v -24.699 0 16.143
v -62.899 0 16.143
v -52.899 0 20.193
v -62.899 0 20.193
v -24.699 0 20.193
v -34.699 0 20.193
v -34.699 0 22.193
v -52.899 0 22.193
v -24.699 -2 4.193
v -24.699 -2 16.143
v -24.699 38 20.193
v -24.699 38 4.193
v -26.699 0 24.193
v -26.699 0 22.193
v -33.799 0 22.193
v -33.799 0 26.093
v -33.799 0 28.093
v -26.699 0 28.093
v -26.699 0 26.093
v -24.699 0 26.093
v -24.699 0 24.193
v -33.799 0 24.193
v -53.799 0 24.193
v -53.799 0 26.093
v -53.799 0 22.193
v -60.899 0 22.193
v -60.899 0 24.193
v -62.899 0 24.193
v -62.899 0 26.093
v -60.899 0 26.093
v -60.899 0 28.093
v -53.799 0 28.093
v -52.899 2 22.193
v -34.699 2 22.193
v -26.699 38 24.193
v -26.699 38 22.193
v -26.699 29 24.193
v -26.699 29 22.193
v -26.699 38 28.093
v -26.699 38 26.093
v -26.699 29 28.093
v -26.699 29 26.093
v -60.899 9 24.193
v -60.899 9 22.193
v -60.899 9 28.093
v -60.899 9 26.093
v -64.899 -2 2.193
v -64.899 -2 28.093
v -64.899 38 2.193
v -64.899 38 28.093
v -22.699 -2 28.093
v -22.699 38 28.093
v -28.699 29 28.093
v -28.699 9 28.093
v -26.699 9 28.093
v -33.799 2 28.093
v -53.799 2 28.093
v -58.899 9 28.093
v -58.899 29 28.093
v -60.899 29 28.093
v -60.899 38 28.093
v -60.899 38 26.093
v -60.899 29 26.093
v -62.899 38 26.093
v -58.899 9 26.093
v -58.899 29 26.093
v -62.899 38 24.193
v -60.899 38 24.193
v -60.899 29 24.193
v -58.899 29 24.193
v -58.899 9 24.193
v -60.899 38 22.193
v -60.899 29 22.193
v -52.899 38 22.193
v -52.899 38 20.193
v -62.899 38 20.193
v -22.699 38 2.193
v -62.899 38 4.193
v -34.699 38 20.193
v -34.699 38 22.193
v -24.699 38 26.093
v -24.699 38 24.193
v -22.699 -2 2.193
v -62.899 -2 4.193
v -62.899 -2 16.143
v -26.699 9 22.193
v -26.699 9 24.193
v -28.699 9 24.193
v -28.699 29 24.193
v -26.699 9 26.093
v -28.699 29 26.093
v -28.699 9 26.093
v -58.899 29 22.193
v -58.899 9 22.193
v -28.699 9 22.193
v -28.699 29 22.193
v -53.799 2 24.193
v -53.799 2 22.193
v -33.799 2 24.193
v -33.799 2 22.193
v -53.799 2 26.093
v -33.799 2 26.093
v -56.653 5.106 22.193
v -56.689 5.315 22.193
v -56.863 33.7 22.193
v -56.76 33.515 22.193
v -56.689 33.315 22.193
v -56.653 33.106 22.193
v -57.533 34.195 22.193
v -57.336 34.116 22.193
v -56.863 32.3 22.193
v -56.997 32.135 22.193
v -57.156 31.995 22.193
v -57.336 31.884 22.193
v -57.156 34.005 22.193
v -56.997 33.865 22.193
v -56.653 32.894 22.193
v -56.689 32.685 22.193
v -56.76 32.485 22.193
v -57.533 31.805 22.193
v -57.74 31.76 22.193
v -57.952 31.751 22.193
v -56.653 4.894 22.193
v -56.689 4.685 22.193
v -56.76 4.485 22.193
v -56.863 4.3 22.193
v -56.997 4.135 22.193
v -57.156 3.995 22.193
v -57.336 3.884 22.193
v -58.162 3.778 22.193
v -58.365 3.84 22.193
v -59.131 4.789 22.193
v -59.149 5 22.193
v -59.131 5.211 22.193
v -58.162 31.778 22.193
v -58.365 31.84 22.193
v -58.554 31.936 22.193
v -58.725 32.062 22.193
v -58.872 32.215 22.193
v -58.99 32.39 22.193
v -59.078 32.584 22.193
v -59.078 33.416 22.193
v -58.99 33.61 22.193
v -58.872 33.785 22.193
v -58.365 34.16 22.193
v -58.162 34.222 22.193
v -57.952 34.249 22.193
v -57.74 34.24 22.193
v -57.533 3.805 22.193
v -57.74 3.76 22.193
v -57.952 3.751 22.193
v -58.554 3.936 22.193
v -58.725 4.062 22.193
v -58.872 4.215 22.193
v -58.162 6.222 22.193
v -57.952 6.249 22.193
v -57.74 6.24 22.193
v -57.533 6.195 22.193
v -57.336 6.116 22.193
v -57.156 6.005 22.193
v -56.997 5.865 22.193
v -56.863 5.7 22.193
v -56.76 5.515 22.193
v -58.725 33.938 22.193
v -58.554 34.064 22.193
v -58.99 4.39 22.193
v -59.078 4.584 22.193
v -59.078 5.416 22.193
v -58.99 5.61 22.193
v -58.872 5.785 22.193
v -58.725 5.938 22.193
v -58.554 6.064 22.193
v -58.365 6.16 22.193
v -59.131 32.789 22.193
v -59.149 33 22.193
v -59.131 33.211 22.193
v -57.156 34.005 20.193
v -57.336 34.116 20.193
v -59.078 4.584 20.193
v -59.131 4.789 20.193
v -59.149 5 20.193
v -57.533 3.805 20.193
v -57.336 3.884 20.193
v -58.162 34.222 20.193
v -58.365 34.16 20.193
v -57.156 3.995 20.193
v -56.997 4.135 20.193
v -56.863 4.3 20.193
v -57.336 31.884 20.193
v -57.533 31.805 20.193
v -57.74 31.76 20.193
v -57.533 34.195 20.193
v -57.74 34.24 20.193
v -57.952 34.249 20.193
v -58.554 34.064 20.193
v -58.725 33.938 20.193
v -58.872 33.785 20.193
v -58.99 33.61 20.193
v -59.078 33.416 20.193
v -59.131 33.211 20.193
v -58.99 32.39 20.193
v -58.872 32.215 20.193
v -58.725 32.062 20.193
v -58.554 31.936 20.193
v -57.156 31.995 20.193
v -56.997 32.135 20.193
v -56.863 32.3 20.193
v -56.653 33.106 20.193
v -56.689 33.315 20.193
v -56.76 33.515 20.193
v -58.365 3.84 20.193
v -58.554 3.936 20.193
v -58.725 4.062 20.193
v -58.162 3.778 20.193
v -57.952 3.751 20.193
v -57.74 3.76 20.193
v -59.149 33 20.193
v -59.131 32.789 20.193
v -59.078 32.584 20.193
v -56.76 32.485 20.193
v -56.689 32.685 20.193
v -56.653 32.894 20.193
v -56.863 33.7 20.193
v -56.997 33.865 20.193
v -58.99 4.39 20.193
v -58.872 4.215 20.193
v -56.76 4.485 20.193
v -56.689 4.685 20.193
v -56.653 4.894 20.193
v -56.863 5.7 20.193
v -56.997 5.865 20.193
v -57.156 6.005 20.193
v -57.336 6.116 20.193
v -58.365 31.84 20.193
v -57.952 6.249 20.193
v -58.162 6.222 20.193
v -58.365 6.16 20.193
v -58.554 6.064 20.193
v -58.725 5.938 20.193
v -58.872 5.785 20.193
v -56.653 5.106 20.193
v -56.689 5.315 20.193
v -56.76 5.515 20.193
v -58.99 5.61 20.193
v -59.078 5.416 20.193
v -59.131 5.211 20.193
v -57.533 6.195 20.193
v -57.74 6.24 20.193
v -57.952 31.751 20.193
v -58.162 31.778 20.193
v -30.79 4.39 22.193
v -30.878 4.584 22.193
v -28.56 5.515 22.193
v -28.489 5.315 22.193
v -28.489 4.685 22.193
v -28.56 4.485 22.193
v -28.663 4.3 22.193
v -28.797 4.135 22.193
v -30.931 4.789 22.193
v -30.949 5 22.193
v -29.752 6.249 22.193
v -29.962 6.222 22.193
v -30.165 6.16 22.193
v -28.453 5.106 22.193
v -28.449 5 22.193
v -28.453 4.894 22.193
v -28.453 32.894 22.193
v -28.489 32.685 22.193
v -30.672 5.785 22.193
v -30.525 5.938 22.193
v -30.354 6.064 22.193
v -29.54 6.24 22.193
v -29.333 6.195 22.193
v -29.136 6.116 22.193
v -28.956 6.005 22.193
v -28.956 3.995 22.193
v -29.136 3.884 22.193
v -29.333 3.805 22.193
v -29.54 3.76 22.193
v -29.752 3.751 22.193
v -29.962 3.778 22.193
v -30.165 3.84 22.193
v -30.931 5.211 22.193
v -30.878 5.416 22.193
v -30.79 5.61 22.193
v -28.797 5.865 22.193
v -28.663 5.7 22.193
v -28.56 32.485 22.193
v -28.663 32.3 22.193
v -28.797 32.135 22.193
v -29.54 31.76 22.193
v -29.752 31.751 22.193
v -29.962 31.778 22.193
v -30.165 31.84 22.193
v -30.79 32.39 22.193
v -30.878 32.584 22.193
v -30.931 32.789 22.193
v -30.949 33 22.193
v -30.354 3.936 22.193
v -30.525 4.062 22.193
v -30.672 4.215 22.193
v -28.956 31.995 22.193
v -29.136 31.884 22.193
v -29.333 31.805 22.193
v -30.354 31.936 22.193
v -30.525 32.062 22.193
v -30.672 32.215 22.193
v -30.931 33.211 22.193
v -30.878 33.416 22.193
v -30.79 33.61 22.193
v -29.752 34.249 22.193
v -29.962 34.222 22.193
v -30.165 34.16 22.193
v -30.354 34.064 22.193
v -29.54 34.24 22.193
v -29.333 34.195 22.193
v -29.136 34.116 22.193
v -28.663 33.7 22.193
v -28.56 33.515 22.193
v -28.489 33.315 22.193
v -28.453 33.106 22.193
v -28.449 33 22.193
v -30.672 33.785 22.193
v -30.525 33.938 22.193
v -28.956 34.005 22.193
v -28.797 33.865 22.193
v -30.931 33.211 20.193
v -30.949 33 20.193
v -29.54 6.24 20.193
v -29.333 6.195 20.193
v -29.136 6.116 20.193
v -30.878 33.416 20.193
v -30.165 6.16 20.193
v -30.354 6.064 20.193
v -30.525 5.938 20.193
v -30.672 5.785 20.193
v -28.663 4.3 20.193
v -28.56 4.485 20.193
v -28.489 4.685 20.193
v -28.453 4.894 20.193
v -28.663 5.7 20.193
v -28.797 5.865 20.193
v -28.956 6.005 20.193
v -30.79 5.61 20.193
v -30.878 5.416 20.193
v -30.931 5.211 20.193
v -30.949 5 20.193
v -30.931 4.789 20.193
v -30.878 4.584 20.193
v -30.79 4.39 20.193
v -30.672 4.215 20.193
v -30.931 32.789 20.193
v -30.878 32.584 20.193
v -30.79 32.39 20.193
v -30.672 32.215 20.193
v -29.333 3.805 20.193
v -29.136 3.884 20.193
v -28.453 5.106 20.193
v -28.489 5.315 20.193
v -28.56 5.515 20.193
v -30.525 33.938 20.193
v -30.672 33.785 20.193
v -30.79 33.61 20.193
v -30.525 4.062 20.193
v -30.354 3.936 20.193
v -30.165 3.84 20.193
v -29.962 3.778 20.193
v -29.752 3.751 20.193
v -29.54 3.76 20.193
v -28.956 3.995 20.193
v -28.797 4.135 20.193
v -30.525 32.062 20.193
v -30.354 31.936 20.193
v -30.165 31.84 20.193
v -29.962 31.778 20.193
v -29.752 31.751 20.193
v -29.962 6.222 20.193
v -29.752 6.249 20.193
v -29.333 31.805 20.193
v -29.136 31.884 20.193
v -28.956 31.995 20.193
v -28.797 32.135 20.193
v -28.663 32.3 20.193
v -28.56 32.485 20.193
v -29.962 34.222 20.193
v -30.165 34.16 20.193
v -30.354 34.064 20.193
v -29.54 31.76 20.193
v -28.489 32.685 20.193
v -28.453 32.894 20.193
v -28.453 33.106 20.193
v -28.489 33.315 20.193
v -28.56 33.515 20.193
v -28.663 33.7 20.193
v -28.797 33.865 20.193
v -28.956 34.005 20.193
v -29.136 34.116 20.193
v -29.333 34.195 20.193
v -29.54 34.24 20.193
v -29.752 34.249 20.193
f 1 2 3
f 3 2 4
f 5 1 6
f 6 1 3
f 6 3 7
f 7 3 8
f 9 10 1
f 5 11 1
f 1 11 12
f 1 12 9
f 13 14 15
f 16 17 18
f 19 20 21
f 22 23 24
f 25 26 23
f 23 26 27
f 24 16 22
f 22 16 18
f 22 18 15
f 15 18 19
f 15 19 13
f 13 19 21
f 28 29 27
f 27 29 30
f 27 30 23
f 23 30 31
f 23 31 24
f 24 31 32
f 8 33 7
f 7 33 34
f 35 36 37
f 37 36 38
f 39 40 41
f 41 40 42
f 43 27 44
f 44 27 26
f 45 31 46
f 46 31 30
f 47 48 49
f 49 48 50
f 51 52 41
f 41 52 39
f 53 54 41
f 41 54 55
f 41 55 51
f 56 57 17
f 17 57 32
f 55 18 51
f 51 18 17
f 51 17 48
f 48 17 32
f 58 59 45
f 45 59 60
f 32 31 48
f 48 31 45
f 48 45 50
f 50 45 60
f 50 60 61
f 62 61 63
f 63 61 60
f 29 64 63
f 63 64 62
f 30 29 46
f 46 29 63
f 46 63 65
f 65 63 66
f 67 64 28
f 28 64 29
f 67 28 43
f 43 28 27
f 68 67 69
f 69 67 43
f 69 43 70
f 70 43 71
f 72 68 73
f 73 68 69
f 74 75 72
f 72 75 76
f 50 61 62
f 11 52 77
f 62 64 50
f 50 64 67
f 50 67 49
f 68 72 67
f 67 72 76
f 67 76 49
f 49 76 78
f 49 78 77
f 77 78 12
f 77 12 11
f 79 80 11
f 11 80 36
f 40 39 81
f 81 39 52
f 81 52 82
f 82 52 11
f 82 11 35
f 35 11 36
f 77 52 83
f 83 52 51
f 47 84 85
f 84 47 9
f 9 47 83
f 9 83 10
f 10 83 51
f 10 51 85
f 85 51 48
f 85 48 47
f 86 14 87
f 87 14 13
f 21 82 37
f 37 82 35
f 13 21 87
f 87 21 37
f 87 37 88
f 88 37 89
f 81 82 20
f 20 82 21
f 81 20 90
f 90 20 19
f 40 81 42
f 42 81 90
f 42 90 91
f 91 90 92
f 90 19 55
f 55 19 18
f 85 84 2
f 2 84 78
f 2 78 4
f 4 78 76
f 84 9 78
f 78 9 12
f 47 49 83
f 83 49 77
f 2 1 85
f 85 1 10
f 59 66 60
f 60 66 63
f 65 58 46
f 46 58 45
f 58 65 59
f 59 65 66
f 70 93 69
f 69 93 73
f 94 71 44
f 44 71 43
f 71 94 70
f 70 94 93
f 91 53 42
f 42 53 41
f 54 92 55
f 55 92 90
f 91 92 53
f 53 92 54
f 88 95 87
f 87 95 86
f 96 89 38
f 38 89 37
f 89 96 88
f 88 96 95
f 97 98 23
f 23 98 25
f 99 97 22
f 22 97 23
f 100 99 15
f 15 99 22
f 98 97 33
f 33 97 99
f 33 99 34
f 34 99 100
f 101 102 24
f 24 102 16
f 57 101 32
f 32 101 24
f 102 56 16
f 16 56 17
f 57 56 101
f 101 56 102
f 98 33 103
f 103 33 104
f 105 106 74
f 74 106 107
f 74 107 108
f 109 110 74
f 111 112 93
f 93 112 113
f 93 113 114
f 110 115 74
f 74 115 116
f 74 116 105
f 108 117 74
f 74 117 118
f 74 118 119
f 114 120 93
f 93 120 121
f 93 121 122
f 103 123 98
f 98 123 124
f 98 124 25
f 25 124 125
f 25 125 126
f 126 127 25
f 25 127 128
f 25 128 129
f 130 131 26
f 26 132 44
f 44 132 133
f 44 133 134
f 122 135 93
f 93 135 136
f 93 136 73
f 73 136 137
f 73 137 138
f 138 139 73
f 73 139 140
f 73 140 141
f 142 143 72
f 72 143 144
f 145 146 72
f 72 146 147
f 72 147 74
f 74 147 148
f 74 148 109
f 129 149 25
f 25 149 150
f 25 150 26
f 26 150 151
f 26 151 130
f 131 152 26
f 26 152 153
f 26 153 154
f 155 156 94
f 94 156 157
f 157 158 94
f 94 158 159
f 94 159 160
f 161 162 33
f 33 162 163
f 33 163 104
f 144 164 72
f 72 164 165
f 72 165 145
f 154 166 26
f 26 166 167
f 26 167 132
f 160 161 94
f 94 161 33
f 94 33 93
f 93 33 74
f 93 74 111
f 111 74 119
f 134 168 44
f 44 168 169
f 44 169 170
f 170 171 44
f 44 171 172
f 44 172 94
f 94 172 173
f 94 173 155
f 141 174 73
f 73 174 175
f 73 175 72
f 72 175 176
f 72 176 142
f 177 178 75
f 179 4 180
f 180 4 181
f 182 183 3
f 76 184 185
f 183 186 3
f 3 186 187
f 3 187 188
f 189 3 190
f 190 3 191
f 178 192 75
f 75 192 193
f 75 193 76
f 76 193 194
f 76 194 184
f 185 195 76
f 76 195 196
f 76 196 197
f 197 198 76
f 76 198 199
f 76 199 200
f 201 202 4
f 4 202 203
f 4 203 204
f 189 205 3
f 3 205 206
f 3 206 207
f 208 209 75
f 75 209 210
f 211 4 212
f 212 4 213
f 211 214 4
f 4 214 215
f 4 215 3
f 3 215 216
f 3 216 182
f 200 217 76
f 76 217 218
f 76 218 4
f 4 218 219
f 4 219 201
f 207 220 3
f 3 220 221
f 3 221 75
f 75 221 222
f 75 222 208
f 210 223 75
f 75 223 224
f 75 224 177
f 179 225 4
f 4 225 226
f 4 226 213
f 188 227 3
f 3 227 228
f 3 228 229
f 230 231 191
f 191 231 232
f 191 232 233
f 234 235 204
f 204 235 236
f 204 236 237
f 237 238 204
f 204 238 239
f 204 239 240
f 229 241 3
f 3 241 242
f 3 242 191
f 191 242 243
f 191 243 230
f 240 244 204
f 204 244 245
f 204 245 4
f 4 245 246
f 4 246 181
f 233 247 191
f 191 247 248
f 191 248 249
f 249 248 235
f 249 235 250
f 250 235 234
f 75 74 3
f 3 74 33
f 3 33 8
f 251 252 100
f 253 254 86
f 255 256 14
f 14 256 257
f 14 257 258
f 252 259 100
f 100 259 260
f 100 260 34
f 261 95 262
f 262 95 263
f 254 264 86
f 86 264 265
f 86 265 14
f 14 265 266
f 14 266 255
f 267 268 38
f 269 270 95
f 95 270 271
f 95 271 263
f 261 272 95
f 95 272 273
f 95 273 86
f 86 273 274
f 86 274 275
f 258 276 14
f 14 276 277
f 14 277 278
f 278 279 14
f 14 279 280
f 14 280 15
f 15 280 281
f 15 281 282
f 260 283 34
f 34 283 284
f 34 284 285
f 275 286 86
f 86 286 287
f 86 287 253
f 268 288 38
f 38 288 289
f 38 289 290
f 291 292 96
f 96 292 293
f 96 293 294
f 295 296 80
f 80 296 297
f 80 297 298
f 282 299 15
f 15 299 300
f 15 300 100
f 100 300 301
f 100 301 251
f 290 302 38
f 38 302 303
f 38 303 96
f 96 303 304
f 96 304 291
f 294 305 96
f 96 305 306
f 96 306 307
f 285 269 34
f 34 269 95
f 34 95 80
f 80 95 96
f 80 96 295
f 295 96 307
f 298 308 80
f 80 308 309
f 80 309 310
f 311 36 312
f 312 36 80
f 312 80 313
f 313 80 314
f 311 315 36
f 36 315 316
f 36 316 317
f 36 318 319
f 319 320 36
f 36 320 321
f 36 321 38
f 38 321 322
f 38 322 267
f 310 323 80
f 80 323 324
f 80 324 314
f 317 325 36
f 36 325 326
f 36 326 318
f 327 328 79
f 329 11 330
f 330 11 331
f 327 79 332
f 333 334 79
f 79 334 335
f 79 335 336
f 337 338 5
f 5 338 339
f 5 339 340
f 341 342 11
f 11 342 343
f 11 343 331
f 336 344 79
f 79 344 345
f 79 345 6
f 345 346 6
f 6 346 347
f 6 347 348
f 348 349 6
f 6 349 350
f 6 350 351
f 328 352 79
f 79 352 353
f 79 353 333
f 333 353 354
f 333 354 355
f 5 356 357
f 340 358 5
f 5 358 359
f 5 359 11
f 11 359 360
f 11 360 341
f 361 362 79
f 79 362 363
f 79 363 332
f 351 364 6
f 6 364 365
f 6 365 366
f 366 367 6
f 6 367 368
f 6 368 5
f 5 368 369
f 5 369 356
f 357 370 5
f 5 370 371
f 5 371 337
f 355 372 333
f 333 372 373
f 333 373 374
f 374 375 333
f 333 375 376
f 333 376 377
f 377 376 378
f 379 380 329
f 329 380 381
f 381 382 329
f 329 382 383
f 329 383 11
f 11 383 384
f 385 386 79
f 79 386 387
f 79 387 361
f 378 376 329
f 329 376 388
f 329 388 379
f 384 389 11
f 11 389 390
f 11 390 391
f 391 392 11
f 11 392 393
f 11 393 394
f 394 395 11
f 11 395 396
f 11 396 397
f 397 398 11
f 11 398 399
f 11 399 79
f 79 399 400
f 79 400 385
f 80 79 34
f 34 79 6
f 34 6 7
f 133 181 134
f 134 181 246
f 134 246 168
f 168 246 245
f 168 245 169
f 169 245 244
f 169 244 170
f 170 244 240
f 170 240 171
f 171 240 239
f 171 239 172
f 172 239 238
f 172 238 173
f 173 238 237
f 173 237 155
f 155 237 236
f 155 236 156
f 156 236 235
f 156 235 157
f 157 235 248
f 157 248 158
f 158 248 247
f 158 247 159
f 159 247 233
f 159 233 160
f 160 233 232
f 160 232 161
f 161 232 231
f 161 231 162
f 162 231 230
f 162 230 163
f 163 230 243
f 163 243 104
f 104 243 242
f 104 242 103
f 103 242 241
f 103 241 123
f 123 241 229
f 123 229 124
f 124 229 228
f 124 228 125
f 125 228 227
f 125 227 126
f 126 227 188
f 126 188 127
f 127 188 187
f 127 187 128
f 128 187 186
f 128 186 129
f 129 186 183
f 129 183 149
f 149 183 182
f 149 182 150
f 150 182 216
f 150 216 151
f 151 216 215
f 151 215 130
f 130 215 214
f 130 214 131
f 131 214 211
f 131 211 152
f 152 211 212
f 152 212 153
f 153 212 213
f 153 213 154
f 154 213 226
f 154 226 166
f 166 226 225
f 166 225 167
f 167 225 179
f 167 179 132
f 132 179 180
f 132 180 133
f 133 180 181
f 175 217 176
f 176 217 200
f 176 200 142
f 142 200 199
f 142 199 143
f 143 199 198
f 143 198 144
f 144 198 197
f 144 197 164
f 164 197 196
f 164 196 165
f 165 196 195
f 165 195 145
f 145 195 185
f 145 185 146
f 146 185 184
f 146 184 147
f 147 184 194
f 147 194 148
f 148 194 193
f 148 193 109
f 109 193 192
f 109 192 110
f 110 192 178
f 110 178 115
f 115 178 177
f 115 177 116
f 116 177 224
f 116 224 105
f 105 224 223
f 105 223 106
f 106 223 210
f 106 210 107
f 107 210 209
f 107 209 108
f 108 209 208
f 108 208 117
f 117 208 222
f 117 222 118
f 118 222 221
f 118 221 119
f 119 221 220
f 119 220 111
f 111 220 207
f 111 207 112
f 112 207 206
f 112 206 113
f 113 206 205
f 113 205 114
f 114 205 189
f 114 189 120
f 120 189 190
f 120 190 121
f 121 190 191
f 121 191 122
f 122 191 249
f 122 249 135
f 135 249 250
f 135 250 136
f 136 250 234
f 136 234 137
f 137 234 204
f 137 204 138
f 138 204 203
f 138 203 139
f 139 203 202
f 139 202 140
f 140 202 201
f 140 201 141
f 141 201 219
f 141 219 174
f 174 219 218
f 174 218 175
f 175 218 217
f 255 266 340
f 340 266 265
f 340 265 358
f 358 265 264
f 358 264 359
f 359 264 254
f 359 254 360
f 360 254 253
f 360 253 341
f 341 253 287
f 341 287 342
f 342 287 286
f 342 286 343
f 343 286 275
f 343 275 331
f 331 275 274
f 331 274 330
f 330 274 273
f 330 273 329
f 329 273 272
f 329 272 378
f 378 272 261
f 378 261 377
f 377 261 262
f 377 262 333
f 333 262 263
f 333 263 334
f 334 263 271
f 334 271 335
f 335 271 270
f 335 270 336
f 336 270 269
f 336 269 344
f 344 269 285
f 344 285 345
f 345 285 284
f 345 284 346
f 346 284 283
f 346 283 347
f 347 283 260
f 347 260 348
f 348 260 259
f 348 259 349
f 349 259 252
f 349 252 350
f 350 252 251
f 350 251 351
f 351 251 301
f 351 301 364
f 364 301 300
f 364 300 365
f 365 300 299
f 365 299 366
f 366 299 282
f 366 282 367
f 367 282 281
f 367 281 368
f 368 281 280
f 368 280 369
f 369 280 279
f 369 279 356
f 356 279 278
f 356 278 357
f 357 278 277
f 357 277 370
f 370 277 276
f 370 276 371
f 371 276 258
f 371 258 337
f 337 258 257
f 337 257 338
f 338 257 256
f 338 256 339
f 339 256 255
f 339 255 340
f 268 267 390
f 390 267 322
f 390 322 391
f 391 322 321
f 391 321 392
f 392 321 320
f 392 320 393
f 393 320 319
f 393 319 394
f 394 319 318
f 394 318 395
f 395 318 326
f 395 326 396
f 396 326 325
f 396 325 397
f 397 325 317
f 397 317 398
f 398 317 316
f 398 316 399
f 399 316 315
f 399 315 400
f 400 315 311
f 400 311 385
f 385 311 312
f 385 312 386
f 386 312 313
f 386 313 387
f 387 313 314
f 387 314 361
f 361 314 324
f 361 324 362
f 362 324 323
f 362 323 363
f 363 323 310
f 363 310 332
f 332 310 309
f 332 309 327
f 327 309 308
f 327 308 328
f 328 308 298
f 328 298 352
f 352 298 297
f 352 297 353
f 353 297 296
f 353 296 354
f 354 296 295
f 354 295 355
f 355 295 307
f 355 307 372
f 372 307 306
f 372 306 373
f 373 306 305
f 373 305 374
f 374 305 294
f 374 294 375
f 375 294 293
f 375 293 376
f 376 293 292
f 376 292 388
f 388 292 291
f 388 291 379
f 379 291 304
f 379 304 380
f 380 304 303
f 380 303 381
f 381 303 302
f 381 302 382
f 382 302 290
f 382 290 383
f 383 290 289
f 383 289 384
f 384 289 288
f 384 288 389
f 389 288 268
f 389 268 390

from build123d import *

# Parameters (mm, degrees)
BOSS_EXTRUDE1_DEPTH       = 38
BOSS_EXTRUDE1_2_DEPTH     = 38
SKETCH2_W                 = 42.2
SKETCH2_H                 = 5.9
BOSS_EXTRUDE2_DEPTH       = 2
BOSS_EXTRUDE3_DEPTH       = 18
SKETCH4_W                 = 42.2
SKETCH4_H                 = 40
BOSS_EXTRUDE4_DEPTH       = 2
SKETCH5_W                 = 38.2
SKETCH5_H                 = 11.95
CUT_EXTRUDE1_DEPTH        = 81.281509747
SKETCH6_W                 = 2
SKETCH6_H                 = 10
BOSS_EXTRUDE5_DEPTH       = 2
SKETCH7_W                 = 2
SKETCH7_H                 = 10
BOSS_EXTRUDE6_DEPTH       = 2
SKETCH8_W                 = 10
SKETCH8_H                 = 2
BOSS_EXTRUDE7_DEPTH       = 2
SKETCH9_W                 = 10
SKETCH9_H                 = 2
BOSS_EXTRUDE8_DEPTH       = 38
M3X0_5_TAPPED_HOLE1_D     = 2.5
M3X0_5_TAPPED_HOLE1_DEPTH = 7.9
M3X0_5_TAPPED_HOLE2_D     = 2.5
M3X0_5_TAPPED_HOLE2_DEPTH = 7.9


with BuildPart() as part:
    # Sketch1 → Boss-Extrude1 (new body)
    with BuildSketch(Plane(origin=(0, 0, 0), x_dir=(1, 0, 0), z_dir=(0, 1, 0))):
        Polygon((-62.898983402, -26.09346473), (-62.898983402, -24.19346473), (-60.898983402, -24.19346473), (-60.898983402, -22.19346473), (-64.898983402, -22.19346473), (-64.898983402, -28.09346473), (-60.898983402, -28.09346473), (-60.898983402, -26.09346473), align=None)
    extrude(amount=BOSS_EXTRUDE1_DEPTH)



with BuildPart() as body_2:
    # Sketch1 → Boss-Extrude1 2 (new body)
    with BuildSketch(Plane(origin=(0, 0, 0), x_dir=(1, 0, 0), z_dir=(0, 1, 0))):
        Polygon((-26.698983402, -22.19346473), (-26.698983402, -24.19346473), (-24.698983402, -24.19346473), (-24.698983402, -26.09346473), (-26.698983402, -26.09346473), (-26.698983402, -28.09346473), (-22.698983402, -28.09346473), (-22.698983402, -22.19346473), align=None)
    extrude(amount=BOSS_EXTRUDE1_2_DEPTH)


with BuildPart() as part_1:
    add(part.part)

    add(body_2.part)  # Boss-Extrude2 merges body 2
    # Sketch2 → Boss-Extrude2 (add)
    with BuildSketch(Plane(origin=(0, 0, 0), x_dir=(1, 0, 0), z_dir=(0, 1, 0))):
        with Locations((-43.798983402, -25.14346473)):
            Rectangle(SKETCH2_W, SKETCH2_H)
    extrude(amount=-BOSS_EXTRUDE2_DEPTH)

    # Sketch3 → Boss-Extrude3 (add)
    with BuildSketch(Plane(origin=(0, 0, 22.19346473), x_dir=(-1, 0, 0), z_dir=(0, 0, -1))):
        Polygon((24.698983402, 38), (22.698983402, 38), (22.698983402, -2), (64.898983402, -2), (64.898983402, 38), (62.898983402, 38), (62.898983402, 0), (24.698983402, 0), align=None)
    extrude(amount=BOSS_EXTRUDE3_DEPTH)

    # Sketch4 → Boss-Extrude4 (add)
    with BuildSketch(Plane(origin=(0, 0, 4.19346473), x_dir=(-1, 0, 0), z_dir=(0, 0, -1))):
        with Locations((43.798983402, 18)):
            Rectangle(SKETCH4_W, SKETCH4_H)
    extrude(amount=BOSS_EXTRUDE4_DEPTH)

    # Sketch5 → Cut-Extrude1 (cut, through all)
    with BuildSketch(Plane(origin=(0, 0, 0), x_dir=(1, 0, 0), z_dir=(0, 1, 0))):
        with Locations((-43.798983402, -10.16846473)):
            Rectangle(SKETCH5_W, SKETCH5_H)
    extrude(amount=-CUT_EXTRUDE1_DEPTH, mode=Mode.SUBTRACT)

    # Sketch6 → Boss-Extrude5 (add)
    with BuildSketch(Plane(origin=(-60.898983402, 0, 0), x_dir=(0, 0, -1), z_dir=(1, 0, 0))):
        with Locations((-27.09346473, 24)):
            Rectangle(SKETCH6_W, SKETCH6_H)
        with Locations((-23.19346473, 24)):
            Rectangle(SKETCH6_W, SKETCH6_H)
        with Locations((-27.09346473, 14)):
            Rectangle(SKETCH6_W, SKETCH6_H)
        with Locations((-23.19346473, 14)):
            Rectangle(SKETCH6_W, SKETCH6_H)
    extrude(amount=BOSS_EXTRUDE5_DEPTH)

    # Sketch7 → Boss-Extrude6 (add)
    with BuildSketch(Plane.ZY.offset(26.698983402)):
        with Locations((27.09346473, 24)):
            Rectangle(SKETCH7_W, SKETCH7_H)
        with Locations((27.09346473, 14)):
            Rectangle(SKETCH7_W, SKETCH7_H)
        with Locations((23.19346473, 14)):
            Rectangle(SKETCH7_W, SKETCH7_H)
        with Locations((23.19346473, 24)):
            Rectangle(SKETCH7_W, SKETCH7_H)
    extrude(amount=BOSS_EXTRUDE6_DEPTH)

    # Sketch8 → Boss-Extrude7 (add)
    with BuildSketch(Plane(origin=(0, 0, 0), x_dir=(1, 0, 0), z_dir=(0, 1, 0))):
        with Locations((-48.798983402, -23.19346473)):
            Rectangle(SKETCH8_W, SKETCH8_H)
        with Locations((-38.798983402, -23.19346473)):
            Rectangle(SKETCH8_W, SKETCH8_H)
        with Locations((-48.798983402, -27.09346473)):
            Rectangle(SKETCH8_W, SKETCH8_H)
        with Locations((-38.798983402, -27.09346473)):
            Rectangle(SKETCH8_W, SKETCH8_H)
    extrude(amount=BOSS_EXTRUDE7_DEPTH)

    # Sketch9 → Boss-Extrude8 (add)
    with BuildSketch(Plane(origin=(0, 0, 0), x_dir=(1, 0, 0), z_dir=(0, 1, 0))):
        with Locations((-57.898983402, -21.19346473)):
            Rectangle(SKETCH9_W, SKETCH9_H)
        with Locations((-29.698983402, -21.19346473)):
            Rectangle(SKETCH9_W, SKETCH9_H)
    extrude(amount=BOSS_EXTRUDE8_DEPTH)

    # M3x0.5 Tapped Hole1
    with Locations(Plane(origin=(-57.898983402, 33, 20.19346473), x_dir=(-1, 0, 0), z_dir=(0, 0, -1))):
        with Locations((0, 0), (0, -28)):
            Hole(M3X0_5_TAPPED_HOLE1_D / 2, depth=M3X0_5_TAPPED_HOLE1_DEPTH)

    # M3x0.5 Tapped Hole2
    with Locations(Plane(origin=(-29.698983402, 33, 20.19346473), x_dir=(-1, 0, 0), z_dir=(0, 0, -1))):
        with Locations((0, 0), (0, -28)):
            Hole(M3X0_5_TAPPED_HOLE2_D / 2, depth=M3X0_5_TAPPED_HOLE2_DEPTH)


solid = part_1.part
